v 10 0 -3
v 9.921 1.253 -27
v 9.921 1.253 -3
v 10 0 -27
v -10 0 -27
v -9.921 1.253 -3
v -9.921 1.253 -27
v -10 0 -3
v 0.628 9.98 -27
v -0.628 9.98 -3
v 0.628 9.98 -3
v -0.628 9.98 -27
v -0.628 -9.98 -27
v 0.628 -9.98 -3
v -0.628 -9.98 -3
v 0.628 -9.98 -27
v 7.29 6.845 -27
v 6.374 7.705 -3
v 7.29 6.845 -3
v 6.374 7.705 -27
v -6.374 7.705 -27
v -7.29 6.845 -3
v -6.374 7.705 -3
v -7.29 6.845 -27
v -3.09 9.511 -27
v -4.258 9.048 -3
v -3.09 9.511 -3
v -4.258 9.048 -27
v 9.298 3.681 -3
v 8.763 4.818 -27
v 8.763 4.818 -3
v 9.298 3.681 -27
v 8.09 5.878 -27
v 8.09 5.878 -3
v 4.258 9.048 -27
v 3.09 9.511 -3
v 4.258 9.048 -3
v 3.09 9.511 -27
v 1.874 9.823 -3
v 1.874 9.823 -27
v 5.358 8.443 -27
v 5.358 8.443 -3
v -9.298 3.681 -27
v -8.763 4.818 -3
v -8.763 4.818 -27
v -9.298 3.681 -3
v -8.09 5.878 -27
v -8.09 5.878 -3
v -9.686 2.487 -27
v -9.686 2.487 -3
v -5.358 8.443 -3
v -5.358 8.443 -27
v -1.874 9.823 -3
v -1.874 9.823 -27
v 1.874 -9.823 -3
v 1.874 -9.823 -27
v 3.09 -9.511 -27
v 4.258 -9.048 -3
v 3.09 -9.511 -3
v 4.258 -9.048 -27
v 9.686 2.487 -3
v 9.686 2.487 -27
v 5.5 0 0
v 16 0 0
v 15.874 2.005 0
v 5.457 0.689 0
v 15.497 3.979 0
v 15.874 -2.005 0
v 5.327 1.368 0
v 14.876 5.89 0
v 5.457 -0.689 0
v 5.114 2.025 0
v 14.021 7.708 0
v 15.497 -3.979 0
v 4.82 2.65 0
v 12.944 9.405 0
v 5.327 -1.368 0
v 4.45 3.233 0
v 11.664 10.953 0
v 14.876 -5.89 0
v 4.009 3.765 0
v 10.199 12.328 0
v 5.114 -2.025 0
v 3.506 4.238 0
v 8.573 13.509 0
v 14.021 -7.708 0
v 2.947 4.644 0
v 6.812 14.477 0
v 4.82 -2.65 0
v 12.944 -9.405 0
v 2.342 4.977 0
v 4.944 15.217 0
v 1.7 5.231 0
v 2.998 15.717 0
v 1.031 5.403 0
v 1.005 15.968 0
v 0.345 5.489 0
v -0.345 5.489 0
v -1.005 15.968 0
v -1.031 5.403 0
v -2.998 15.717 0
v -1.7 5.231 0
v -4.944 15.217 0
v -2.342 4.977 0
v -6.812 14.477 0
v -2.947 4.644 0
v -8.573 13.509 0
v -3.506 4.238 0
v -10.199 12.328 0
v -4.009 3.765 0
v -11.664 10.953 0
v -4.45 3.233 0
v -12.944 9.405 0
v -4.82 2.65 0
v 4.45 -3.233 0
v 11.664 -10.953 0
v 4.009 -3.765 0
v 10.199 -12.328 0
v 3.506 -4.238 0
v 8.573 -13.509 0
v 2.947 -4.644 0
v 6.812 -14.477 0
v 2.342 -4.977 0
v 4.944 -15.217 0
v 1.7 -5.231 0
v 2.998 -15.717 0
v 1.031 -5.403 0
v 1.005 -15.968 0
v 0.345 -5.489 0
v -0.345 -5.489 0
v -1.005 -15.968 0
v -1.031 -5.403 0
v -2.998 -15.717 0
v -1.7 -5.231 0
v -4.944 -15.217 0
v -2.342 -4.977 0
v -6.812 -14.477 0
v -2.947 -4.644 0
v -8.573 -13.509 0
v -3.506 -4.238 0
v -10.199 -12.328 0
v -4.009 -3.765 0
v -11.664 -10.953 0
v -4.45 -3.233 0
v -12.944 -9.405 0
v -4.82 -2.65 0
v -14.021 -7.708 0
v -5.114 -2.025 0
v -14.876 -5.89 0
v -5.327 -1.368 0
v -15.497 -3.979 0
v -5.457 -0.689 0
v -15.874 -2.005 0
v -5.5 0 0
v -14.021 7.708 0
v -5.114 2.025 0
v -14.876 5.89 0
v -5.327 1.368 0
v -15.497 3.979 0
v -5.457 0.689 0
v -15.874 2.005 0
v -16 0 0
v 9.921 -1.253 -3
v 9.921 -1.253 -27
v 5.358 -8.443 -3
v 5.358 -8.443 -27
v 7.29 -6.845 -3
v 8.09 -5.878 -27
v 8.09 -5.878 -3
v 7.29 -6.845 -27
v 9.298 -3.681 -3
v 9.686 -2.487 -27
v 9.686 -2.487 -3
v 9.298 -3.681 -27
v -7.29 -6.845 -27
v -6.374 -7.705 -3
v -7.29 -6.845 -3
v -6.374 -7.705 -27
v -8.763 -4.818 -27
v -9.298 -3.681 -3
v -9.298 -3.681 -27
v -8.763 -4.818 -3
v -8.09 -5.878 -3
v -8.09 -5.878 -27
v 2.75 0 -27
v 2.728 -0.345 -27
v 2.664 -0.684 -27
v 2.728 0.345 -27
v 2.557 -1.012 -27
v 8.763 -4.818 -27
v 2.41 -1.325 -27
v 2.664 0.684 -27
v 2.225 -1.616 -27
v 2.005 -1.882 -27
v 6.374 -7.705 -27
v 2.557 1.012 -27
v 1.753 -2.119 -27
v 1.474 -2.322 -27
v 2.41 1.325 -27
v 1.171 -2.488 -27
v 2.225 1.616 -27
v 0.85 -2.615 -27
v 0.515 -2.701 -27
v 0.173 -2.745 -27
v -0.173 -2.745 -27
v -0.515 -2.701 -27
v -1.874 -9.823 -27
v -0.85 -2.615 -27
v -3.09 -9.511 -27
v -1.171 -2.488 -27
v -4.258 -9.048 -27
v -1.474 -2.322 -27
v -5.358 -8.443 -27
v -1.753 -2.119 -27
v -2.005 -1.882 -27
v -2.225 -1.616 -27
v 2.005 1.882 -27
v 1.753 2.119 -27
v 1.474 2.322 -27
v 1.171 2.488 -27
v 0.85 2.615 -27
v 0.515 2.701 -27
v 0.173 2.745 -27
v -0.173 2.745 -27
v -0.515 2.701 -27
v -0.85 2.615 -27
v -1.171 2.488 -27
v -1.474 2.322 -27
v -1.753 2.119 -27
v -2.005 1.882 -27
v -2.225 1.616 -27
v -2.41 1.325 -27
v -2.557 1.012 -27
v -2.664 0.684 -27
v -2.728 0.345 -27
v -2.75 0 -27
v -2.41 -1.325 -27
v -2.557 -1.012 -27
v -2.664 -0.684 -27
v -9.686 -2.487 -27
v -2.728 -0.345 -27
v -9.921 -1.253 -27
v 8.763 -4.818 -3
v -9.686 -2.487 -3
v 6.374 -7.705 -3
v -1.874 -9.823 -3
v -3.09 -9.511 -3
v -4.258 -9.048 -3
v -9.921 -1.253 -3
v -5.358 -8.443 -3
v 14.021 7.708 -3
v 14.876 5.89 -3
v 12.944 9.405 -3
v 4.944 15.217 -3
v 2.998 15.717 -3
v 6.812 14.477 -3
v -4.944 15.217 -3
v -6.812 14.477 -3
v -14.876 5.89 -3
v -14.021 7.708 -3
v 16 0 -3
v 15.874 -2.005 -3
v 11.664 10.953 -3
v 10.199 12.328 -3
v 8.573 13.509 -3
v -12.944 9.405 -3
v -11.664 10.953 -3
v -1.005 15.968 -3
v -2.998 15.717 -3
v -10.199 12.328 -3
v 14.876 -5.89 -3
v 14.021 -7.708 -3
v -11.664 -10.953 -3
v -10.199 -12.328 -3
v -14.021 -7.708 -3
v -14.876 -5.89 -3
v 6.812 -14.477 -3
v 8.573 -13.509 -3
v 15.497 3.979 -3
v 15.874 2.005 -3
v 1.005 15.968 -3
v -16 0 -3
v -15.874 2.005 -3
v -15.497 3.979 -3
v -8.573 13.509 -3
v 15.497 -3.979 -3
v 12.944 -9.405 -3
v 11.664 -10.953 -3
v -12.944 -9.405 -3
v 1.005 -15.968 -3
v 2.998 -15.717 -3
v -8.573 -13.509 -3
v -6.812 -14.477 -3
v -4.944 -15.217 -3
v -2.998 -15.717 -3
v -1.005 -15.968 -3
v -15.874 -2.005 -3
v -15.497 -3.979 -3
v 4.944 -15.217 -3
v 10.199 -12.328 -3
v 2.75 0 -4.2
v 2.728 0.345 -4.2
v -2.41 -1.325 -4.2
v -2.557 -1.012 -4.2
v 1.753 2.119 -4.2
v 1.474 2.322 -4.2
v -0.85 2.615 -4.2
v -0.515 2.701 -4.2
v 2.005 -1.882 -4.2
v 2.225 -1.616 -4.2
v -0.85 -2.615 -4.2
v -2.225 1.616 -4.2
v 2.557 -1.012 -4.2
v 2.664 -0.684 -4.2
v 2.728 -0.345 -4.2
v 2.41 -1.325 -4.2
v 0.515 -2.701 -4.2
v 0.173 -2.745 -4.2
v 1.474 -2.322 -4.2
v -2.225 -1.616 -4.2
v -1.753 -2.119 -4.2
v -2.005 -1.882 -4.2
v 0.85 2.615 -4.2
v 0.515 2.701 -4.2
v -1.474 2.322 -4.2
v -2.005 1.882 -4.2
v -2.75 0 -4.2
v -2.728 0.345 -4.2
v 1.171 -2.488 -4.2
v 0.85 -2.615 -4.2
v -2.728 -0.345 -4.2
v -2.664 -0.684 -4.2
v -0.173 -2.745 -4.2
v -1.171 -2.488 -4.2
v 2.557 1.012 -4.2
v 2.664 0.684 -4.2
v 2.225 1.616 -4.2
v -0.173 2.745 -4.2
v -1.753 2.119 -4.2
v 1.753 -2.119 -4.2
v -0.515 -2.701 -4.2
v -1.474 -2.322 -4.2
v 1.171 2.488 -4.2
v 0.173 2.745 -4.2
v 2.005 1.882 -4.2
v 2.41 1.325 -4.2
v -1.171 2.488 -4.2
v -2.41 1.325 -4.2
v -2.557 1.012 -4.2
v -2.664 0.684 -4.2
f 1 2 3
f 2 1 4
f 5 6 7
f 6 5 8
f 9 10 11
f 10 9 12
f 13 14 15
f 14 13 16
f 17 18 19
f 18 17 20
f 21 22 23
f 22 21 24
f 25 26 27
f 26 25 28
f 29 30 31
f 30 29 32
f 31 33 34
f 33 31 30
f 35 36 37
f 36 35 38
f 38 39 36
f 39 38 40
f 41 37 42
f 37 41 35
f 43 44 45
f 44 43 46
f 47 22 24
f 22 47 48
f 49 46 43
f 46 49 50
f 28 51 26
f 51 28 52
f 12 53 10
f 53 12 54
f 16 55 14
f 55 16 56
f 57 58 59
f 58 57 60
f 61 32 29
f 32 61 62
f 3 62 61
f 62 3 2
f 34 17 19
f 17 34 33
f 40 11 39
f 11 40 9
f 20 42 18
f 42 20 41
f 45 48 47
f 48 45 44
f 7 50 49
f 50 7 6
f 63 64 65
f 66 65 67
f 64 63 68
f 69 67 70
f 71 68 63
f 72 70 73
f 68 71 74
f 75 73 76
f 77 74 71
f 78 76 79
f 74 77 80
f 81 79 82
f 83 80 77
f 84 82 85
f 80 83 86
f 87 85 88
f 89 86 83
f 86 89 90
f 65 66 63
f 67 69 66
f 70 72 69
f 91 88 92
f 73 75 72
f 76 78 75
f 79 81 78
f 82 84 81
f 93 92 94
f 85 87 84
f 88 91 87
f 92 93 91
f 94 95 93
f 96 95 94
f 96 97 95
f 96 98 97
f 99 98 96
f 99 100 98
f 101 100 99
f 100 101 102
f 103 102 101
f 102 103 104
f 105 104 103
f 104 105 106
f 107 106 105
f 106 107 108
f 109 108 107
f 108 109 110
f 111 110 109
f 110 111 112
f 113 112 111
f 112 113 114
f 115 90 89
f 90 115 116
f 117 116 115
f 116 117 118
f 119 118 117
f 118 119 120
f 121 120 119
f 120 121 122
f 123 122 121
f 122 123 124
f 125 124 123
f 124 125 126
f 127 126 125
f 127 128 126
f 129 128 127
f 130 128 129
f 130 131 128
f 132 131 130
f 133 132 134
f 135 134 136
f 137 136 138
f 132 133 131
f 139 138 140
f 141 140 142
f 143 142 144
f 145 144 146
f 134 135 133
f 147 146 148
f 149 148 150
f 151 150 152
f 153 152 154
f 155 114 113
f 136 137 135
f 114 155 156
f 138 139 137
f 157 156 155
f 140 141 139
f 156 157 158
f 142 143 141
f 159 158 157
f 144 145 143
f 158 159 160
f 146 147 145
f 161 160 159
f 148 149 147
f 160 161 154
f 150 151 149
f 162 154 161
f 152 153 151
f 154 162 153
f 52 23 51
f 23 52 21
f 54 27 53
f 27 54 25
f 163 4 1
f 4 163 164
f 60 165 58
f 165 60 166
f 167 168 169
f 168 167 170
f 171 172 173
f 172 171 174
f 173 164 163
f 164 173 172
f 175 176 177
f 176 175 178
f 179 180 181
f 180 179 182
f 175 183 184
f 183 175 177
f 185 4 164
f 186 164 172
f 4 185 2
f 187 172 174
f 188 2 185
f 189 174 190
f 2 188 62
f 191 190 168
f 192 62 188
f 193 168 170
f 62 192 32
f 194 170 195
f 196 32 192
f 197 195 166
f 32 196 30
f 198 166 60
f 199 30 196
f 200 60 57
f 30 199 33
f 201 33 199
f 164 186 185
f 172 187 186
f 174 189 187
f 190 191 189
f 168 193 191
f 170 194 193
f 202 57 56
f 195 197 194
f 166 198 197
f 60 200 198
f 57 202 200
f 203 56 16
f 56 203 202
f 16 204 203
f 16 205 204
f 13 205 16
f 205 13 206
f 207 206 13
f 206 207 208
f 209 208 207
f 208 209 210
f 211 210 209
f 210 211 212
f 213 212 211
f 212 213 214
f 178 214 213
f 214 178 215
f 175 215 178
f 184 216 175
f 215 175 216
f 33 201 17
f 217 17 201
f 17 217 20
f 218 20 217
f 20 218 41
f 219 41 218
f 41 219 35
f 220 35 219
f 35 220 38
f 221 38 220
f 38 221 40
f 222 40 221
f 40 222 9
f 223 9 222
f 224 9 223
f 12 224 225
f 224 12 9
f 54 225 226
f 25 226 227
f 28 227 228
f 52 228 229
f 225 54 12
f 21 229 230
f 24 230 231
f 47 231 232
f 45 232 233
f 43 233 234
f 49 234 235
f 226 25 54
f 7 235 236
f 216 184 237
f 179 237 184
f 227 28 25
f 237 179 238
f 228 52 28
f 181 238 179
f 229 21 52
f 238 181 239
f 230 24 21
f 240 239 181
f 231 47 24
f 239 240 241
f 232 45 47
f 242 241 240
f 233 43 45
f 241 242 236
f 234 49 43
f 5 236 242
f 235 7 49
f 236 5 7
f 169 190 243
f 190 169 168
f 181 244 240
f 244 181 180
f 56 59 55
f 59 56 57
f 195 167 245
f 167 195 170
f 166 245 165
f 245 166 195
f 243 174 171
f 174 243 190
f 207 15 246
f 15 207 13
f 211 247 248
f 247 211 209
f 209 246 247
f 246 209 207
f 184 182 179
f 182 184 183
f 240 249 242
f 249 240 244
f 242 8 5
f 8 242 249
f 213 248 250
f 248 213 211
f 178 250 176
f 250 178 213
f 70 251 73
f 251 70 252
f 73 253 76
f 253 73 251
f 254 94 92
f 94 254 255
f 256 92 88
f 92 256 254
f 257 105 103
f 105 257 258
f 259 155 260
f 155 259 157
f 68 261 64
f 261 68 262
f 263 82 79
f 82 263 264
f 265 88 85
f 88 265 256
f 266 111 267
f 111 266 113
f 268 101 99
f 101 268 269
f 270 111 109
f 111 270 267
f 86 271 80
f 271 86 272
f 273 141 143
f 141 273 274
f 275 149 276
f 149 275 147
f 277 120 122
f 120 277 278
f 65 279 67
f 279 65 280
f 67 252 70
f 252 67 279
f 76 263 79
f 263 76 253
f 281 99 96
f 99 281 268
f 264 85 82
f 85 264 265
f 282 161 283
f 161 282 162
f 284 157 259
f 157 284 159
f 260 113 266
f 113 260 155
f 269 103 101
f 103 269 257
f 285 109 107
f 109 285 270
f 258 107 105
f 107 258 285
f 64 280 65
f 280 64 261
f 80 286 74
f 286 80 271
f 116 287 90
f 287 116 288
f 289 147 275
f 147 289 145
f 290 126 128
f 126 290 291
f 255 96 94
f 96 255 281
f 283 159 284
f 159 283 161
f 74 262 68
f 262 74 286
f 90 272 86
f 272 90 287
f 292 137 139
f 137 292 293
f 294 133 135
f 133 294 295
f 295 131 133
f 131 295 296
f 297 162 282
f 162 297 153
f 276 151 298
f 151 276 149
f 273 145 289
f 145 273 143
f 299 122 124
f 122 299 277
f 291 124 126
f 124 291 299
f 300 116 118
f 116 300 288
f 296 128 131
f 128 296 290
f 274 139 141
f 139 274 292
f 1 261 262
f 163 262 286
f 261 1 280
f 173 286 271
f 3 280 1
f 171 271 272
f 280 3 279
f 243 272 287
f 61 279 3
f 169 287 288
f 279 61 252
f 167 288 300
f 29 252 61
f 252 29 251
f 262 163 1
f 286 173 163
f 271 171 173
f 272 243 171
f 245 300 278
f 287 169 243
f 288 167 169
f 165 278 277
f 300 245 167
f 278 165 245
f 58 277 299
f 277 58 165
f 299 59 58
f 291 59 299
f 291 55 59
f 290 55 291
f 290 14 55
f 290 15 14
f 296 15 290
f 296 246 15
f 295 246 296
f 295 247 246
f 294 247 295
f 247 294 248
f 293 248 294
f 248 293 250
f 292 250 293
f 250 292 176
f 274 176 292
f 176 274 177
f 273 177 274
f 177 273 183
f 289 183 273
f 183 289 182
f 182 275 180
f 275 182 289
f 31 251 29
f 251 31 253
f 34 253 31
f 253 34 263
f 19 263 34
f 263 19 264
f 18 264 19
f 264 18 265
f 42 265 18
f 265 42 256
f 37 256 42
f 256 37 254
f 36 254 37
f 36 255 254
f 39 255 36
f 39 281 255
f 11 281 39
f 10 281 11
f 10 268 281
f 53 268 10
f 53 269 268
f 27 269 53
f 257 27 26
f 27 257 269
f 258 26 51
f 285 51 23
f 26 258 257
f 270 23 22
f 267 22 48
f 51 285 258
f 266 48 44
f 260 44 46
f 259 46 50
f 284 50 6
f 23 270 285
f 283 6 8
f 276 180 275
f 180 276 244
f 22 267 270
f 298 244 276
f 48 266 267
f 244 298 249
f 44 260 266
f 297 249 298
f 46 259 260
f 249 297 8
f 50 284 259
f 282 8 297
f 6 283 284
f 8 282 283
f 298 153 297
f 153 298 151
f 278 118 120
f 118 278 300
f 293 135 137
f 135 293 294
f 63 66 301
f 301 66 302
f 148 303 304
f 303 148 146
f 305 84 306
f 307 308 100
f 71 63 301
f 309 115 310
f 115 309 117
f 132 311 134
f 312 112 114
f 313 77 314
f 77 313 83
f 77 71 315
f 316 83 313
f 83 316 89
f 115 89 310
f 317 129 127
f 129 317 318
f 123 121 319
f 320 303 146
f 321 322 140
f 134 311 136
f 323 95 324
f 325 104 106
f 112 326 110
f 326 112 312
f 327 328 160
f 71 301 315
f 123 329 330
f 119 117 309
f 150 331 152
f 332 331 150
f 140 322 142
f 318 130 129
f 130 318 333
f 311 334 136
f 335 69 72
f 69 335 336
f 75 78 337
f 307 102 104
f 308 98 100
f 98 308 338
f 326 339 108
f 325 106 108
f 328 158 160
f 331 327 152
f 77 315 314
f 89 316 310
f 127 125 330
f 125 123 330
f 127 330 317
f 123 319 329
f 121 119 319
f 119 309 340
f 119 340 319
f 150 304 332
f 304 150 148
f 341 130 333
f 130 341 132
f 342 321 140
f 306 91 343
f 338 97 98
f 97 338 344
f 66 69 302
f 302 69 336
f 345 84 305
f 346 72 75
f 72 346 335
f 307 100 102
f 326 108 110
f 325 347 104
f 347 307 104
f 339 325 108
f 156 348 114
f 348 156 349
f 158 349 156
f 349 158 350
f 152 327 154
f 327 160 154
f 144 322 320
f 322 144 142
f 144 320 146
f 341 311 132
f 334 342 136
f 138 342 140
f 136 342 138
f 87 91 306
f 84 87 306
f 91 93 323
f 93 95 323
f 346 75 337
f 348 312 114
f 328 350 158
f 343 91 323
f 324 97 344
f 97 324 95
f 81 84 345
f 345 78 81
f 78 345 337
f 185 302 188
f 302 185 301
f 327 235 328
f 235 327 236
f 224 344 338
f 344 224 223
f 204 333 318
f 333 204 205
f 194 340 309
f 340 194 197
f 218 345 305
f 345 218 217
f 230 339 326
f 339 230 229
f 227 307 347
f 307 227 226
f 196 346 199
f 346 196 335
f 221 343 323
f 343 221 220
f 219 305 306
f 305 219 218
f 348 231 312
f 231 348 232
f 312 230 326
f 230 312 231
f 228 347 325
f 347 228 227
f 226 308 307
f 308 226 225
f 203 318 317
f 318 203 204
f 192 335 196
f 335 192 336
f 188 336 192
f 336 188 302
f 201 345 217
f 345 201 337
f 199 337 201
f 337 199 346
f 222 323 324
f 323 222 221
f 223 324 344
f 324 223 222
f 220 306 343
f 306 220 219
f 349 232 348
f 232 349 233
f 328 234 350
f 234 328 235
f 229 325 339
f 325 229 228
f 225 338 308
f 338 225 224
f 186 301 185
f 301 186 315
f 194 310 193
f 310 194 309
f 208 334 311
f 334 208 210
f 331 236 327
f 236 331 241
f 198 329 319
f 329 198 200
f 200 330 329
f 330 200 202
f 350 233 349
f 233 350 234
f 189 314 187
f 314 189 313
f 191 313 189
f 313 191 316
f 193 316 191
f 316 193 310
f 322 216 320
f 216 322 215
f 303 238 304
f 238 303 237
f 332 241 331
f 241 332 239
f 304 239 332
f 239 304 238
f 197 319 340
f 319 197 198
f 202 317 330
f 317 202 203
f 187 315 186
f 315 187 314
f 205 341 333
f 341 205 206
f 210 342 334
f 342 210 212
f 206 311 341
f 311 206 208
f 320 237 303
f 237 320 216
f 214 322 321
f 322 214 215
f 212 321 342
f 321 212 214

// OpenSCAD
$fn = 50;


difference() {
	union() {
		translate(v = [0, 0, -27.0000000000]) {
			cylinder(h = 27, r = 10.0000000000);
		}
		translate(v = [0, 0, -3.0000000000]) {
			cylinder(h = 3, r = 16.0000000000);
		}
	}
	union() {
		translate(v = [0, 0, 0]) {
			rotate(a = [0, 0, 0]) {
				difference() {
					union() {
						#translate(v = [0, 0, -27.0000000000]) {
							cylinder(h = 27, r = 2.2500000000);
						}
						#translate(v = [0, 0, -4.2000000000]) {
							cylinder(h = 4.2000000000, r1 = 2.7500000000, r2 = 5.5000000000);
						}
						#translate(v = [0, 0, -27.0000000000]) {
							cylinder(h = 27, r = 2.7500000000);
						}
						#translate(v = [0, 0, -27.0000000000]) {
							cylinder(h = 27, r = 2.2500000000);
						}
					}
					union();
				}
			}
		}
	}
}
